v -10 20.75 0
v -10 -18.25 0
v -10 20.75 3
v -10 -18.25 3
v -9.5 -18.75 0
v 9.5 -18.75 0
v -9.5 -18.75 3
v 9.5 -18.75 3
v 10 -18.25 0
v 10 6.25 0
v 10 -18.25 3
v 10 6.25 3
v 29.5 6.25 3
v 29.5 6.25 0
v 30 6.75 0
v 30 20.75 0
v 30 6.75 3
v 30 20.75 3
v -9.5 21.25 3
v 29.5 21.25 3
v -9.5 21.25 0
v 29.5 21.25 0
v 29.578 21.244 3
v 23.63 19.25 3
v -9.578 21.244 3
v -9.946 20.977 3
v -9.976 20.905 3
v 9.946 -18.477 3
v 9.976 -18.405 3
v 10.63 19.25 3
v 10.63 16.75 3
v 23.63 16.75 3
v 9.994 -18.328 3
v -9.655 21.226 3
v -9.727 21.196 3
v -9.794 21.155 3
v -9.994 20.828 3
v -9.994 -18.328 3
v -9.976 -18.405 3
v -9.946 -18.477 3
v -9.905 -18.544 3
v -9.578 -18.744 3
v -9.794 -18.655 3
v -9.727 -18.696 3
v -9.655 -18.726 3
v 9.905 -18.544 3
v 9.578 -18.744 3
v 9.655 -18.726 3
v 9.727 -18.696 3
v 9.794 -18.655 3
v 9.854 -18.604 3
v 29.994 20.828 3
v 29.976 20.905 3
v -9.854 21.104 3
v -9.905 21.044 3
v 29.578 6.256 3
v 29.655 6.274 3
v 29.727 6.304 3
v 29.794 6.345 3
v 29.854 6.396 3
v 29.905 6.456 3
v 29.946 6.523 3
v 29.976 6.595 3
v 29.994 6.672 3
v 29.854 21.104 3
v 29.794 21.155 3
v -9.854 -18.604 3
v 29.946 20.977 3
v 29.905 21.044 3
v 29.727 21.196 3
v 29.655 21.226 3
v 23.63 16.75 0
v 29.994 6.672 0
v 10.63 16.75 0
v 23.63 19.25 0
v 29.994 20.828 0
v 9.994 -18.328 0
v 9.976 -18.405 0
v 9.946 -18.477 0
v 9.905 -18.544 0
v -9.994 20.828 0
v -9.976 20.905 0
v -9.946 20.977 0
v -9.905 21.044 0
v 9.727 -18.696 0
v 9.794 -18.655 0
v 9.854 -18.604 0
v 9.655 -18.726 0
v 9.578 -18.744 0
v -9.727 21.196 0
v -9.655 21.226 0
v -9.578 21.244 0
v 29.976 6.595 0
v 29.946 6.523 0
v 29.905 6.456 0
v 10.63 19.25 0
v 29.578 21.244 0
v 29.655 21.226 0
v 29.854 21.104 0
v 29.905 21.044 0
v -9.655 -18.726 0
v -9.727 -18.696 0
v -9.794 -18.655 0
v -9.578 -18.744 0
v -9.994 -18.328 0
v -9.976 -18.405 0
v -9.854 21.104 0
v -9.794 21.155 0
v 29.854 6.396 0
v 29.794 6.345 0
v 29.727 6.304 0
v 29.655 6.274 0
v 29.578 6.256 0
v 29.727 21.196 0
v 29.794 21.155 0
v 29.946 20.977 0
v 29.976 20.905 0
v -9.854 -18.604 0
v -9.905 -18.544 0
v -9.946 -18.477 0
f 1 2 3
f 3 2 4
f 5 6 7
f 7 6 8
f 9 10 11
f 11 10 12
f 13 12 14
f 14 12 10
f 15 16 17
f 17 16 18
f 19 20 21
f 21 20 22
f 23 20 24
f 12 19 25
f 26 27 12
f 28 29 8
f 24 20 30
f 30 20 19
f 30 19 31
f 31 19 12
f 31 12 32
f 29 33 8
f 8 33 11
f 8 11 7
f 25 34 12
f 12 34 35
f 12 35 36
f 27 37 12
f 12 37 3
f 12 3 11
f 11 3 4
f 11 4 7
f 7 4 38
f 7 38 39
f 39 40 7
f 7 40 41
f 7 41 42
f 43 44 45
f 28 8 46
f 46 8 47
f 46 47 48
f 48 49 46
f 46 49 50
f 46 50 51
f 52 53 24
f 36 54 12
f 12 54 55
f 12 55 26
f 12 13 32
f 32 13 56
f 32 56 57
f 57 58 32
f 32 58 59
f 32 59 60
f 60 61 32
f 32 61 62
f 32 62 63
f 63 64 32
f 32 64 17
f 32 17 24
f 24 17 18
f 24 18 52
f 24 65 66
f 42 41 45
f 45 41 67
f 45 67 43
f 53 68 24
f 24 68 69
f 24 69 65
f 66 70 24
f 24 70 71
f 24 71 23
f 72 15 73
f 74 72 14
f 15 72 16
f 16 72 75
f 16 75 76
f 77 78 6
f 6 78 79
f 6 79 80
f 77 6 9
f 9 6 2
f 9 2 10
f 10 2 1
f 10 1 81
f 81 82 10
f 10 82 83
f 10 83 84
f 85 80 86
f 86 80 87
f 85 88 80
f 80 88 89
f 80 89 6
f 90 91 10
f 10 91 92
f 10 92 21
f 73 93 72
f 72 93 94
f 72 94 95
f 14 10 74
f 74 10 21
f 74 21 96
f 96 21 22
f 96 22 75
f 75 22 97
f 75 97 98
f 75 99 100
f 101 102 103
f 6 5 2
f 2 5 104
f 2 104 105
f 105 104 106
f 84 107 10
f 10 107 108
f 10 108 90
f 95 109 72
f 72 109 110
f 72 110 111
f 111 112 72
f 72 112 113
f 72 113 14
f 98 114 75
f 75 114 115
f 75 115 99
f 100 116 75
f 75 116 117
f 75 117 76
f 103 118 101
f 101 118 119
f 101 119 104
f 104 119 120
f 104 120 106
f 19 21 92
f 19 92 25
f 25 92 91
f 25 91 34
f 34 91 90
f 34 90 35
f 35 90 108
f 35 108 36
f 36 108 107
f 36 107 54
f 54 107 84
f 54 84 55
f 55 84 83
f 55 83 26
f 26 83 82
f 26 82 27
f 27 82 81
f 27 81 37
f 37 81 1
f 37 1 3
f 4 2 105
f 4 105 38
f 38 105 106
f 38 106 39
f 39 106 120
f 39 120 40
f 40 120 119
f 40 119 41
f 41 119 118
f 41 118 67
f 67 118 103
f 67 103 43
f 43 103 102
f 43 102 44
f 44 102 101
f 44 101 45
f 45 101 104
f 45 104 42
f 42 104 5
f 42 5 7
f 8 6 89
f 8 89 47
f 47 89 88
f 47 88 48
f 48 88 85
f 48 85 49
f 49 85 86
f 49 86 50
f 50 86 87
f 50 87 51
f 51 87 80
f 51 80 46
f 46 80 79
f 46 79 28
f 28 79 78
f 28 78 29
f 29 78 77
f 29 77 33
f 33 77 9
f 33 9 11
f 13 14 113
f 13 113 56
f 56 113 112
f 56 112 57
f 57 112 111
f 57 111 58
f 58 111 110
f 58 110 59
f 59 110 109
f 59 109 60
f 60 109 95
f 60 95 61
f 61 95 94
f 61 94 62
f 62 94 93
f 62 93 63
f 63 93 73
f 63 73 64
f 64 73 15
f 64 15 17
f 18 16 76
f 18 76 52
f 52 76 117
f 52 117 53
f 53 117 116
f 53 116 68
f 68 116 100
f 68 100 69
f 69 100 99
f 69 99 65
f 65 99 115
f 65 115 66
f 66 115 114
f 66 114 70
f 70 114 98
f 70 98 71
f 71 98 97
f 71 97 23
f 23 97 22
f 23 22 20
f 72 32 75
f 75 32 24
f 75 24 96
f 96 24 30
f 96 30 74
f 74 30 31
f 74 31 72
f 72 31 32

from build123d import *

# Parameters (mm, degrees)
Y_KSEKLIK_EKSTR_ZYON1_DEPTH = 3
RADYUS1_R                   = 0.5
KES_EKSTR_ZYON2_REACH       = 38.886
IZIM6_W                     = 13
IZIM6_H                     = 2.5


with BuildPart() as part:
    # Çizim1 → Yükseklik-Ekstrüzyon1 (new body)
    with BuildSketch(Plane.XY):
        Polygon((10, 21.25), (30, 21.25), (30, 6.25), (10, 6.25), (10, -18.75), (-10, -18.75), (-10, 21.25), align=None)
    extrude(amount=Y_KSEKLIK_EKSTR_ZYON1_DEPTH)

    # Radyus1
    radyus1_edges = [part.edges().sort_by_distance(p)[0] for p in [
        (-10, 21.25, 1.5),
        (30, 21.25, 1.5),
        (30, 6.25, 1.5),
        (10, -18.75, 1.5),
        (-10, -18.75, 1.5),
    ]]
    fillet(radyus1_edges, radius=RADYUS1_R)

    # Çizim6 → Kes-Ekstrüzyon2 (cut, up to next)
    with BuildSketch(Plane(origin=(0, 0, 0), x_dir=(-1, 0, 0), z_dir=(0, 0, -1)), mode=Mode.PRIVATE) as kes_ekstr_zyon2_sk1:
        with Locations((-17.130228212, 18)):
            Rectangle(IZIM6_W, IZIM6_H)
    kes_ekstr_zyon2_tool1 = extrude(kes_ekstr_zyon2_sk1.sketch, amount=-KES_EKSTR_ZYON2_REACH, mode=Mode.PRIVATE) & part.part
    add(kes_ekstr_zyon2_tool1.solids().sort_by_distance((17.130228, 18, 0))[0], mode=Mode.SUBTRACT)


solid = part.part
